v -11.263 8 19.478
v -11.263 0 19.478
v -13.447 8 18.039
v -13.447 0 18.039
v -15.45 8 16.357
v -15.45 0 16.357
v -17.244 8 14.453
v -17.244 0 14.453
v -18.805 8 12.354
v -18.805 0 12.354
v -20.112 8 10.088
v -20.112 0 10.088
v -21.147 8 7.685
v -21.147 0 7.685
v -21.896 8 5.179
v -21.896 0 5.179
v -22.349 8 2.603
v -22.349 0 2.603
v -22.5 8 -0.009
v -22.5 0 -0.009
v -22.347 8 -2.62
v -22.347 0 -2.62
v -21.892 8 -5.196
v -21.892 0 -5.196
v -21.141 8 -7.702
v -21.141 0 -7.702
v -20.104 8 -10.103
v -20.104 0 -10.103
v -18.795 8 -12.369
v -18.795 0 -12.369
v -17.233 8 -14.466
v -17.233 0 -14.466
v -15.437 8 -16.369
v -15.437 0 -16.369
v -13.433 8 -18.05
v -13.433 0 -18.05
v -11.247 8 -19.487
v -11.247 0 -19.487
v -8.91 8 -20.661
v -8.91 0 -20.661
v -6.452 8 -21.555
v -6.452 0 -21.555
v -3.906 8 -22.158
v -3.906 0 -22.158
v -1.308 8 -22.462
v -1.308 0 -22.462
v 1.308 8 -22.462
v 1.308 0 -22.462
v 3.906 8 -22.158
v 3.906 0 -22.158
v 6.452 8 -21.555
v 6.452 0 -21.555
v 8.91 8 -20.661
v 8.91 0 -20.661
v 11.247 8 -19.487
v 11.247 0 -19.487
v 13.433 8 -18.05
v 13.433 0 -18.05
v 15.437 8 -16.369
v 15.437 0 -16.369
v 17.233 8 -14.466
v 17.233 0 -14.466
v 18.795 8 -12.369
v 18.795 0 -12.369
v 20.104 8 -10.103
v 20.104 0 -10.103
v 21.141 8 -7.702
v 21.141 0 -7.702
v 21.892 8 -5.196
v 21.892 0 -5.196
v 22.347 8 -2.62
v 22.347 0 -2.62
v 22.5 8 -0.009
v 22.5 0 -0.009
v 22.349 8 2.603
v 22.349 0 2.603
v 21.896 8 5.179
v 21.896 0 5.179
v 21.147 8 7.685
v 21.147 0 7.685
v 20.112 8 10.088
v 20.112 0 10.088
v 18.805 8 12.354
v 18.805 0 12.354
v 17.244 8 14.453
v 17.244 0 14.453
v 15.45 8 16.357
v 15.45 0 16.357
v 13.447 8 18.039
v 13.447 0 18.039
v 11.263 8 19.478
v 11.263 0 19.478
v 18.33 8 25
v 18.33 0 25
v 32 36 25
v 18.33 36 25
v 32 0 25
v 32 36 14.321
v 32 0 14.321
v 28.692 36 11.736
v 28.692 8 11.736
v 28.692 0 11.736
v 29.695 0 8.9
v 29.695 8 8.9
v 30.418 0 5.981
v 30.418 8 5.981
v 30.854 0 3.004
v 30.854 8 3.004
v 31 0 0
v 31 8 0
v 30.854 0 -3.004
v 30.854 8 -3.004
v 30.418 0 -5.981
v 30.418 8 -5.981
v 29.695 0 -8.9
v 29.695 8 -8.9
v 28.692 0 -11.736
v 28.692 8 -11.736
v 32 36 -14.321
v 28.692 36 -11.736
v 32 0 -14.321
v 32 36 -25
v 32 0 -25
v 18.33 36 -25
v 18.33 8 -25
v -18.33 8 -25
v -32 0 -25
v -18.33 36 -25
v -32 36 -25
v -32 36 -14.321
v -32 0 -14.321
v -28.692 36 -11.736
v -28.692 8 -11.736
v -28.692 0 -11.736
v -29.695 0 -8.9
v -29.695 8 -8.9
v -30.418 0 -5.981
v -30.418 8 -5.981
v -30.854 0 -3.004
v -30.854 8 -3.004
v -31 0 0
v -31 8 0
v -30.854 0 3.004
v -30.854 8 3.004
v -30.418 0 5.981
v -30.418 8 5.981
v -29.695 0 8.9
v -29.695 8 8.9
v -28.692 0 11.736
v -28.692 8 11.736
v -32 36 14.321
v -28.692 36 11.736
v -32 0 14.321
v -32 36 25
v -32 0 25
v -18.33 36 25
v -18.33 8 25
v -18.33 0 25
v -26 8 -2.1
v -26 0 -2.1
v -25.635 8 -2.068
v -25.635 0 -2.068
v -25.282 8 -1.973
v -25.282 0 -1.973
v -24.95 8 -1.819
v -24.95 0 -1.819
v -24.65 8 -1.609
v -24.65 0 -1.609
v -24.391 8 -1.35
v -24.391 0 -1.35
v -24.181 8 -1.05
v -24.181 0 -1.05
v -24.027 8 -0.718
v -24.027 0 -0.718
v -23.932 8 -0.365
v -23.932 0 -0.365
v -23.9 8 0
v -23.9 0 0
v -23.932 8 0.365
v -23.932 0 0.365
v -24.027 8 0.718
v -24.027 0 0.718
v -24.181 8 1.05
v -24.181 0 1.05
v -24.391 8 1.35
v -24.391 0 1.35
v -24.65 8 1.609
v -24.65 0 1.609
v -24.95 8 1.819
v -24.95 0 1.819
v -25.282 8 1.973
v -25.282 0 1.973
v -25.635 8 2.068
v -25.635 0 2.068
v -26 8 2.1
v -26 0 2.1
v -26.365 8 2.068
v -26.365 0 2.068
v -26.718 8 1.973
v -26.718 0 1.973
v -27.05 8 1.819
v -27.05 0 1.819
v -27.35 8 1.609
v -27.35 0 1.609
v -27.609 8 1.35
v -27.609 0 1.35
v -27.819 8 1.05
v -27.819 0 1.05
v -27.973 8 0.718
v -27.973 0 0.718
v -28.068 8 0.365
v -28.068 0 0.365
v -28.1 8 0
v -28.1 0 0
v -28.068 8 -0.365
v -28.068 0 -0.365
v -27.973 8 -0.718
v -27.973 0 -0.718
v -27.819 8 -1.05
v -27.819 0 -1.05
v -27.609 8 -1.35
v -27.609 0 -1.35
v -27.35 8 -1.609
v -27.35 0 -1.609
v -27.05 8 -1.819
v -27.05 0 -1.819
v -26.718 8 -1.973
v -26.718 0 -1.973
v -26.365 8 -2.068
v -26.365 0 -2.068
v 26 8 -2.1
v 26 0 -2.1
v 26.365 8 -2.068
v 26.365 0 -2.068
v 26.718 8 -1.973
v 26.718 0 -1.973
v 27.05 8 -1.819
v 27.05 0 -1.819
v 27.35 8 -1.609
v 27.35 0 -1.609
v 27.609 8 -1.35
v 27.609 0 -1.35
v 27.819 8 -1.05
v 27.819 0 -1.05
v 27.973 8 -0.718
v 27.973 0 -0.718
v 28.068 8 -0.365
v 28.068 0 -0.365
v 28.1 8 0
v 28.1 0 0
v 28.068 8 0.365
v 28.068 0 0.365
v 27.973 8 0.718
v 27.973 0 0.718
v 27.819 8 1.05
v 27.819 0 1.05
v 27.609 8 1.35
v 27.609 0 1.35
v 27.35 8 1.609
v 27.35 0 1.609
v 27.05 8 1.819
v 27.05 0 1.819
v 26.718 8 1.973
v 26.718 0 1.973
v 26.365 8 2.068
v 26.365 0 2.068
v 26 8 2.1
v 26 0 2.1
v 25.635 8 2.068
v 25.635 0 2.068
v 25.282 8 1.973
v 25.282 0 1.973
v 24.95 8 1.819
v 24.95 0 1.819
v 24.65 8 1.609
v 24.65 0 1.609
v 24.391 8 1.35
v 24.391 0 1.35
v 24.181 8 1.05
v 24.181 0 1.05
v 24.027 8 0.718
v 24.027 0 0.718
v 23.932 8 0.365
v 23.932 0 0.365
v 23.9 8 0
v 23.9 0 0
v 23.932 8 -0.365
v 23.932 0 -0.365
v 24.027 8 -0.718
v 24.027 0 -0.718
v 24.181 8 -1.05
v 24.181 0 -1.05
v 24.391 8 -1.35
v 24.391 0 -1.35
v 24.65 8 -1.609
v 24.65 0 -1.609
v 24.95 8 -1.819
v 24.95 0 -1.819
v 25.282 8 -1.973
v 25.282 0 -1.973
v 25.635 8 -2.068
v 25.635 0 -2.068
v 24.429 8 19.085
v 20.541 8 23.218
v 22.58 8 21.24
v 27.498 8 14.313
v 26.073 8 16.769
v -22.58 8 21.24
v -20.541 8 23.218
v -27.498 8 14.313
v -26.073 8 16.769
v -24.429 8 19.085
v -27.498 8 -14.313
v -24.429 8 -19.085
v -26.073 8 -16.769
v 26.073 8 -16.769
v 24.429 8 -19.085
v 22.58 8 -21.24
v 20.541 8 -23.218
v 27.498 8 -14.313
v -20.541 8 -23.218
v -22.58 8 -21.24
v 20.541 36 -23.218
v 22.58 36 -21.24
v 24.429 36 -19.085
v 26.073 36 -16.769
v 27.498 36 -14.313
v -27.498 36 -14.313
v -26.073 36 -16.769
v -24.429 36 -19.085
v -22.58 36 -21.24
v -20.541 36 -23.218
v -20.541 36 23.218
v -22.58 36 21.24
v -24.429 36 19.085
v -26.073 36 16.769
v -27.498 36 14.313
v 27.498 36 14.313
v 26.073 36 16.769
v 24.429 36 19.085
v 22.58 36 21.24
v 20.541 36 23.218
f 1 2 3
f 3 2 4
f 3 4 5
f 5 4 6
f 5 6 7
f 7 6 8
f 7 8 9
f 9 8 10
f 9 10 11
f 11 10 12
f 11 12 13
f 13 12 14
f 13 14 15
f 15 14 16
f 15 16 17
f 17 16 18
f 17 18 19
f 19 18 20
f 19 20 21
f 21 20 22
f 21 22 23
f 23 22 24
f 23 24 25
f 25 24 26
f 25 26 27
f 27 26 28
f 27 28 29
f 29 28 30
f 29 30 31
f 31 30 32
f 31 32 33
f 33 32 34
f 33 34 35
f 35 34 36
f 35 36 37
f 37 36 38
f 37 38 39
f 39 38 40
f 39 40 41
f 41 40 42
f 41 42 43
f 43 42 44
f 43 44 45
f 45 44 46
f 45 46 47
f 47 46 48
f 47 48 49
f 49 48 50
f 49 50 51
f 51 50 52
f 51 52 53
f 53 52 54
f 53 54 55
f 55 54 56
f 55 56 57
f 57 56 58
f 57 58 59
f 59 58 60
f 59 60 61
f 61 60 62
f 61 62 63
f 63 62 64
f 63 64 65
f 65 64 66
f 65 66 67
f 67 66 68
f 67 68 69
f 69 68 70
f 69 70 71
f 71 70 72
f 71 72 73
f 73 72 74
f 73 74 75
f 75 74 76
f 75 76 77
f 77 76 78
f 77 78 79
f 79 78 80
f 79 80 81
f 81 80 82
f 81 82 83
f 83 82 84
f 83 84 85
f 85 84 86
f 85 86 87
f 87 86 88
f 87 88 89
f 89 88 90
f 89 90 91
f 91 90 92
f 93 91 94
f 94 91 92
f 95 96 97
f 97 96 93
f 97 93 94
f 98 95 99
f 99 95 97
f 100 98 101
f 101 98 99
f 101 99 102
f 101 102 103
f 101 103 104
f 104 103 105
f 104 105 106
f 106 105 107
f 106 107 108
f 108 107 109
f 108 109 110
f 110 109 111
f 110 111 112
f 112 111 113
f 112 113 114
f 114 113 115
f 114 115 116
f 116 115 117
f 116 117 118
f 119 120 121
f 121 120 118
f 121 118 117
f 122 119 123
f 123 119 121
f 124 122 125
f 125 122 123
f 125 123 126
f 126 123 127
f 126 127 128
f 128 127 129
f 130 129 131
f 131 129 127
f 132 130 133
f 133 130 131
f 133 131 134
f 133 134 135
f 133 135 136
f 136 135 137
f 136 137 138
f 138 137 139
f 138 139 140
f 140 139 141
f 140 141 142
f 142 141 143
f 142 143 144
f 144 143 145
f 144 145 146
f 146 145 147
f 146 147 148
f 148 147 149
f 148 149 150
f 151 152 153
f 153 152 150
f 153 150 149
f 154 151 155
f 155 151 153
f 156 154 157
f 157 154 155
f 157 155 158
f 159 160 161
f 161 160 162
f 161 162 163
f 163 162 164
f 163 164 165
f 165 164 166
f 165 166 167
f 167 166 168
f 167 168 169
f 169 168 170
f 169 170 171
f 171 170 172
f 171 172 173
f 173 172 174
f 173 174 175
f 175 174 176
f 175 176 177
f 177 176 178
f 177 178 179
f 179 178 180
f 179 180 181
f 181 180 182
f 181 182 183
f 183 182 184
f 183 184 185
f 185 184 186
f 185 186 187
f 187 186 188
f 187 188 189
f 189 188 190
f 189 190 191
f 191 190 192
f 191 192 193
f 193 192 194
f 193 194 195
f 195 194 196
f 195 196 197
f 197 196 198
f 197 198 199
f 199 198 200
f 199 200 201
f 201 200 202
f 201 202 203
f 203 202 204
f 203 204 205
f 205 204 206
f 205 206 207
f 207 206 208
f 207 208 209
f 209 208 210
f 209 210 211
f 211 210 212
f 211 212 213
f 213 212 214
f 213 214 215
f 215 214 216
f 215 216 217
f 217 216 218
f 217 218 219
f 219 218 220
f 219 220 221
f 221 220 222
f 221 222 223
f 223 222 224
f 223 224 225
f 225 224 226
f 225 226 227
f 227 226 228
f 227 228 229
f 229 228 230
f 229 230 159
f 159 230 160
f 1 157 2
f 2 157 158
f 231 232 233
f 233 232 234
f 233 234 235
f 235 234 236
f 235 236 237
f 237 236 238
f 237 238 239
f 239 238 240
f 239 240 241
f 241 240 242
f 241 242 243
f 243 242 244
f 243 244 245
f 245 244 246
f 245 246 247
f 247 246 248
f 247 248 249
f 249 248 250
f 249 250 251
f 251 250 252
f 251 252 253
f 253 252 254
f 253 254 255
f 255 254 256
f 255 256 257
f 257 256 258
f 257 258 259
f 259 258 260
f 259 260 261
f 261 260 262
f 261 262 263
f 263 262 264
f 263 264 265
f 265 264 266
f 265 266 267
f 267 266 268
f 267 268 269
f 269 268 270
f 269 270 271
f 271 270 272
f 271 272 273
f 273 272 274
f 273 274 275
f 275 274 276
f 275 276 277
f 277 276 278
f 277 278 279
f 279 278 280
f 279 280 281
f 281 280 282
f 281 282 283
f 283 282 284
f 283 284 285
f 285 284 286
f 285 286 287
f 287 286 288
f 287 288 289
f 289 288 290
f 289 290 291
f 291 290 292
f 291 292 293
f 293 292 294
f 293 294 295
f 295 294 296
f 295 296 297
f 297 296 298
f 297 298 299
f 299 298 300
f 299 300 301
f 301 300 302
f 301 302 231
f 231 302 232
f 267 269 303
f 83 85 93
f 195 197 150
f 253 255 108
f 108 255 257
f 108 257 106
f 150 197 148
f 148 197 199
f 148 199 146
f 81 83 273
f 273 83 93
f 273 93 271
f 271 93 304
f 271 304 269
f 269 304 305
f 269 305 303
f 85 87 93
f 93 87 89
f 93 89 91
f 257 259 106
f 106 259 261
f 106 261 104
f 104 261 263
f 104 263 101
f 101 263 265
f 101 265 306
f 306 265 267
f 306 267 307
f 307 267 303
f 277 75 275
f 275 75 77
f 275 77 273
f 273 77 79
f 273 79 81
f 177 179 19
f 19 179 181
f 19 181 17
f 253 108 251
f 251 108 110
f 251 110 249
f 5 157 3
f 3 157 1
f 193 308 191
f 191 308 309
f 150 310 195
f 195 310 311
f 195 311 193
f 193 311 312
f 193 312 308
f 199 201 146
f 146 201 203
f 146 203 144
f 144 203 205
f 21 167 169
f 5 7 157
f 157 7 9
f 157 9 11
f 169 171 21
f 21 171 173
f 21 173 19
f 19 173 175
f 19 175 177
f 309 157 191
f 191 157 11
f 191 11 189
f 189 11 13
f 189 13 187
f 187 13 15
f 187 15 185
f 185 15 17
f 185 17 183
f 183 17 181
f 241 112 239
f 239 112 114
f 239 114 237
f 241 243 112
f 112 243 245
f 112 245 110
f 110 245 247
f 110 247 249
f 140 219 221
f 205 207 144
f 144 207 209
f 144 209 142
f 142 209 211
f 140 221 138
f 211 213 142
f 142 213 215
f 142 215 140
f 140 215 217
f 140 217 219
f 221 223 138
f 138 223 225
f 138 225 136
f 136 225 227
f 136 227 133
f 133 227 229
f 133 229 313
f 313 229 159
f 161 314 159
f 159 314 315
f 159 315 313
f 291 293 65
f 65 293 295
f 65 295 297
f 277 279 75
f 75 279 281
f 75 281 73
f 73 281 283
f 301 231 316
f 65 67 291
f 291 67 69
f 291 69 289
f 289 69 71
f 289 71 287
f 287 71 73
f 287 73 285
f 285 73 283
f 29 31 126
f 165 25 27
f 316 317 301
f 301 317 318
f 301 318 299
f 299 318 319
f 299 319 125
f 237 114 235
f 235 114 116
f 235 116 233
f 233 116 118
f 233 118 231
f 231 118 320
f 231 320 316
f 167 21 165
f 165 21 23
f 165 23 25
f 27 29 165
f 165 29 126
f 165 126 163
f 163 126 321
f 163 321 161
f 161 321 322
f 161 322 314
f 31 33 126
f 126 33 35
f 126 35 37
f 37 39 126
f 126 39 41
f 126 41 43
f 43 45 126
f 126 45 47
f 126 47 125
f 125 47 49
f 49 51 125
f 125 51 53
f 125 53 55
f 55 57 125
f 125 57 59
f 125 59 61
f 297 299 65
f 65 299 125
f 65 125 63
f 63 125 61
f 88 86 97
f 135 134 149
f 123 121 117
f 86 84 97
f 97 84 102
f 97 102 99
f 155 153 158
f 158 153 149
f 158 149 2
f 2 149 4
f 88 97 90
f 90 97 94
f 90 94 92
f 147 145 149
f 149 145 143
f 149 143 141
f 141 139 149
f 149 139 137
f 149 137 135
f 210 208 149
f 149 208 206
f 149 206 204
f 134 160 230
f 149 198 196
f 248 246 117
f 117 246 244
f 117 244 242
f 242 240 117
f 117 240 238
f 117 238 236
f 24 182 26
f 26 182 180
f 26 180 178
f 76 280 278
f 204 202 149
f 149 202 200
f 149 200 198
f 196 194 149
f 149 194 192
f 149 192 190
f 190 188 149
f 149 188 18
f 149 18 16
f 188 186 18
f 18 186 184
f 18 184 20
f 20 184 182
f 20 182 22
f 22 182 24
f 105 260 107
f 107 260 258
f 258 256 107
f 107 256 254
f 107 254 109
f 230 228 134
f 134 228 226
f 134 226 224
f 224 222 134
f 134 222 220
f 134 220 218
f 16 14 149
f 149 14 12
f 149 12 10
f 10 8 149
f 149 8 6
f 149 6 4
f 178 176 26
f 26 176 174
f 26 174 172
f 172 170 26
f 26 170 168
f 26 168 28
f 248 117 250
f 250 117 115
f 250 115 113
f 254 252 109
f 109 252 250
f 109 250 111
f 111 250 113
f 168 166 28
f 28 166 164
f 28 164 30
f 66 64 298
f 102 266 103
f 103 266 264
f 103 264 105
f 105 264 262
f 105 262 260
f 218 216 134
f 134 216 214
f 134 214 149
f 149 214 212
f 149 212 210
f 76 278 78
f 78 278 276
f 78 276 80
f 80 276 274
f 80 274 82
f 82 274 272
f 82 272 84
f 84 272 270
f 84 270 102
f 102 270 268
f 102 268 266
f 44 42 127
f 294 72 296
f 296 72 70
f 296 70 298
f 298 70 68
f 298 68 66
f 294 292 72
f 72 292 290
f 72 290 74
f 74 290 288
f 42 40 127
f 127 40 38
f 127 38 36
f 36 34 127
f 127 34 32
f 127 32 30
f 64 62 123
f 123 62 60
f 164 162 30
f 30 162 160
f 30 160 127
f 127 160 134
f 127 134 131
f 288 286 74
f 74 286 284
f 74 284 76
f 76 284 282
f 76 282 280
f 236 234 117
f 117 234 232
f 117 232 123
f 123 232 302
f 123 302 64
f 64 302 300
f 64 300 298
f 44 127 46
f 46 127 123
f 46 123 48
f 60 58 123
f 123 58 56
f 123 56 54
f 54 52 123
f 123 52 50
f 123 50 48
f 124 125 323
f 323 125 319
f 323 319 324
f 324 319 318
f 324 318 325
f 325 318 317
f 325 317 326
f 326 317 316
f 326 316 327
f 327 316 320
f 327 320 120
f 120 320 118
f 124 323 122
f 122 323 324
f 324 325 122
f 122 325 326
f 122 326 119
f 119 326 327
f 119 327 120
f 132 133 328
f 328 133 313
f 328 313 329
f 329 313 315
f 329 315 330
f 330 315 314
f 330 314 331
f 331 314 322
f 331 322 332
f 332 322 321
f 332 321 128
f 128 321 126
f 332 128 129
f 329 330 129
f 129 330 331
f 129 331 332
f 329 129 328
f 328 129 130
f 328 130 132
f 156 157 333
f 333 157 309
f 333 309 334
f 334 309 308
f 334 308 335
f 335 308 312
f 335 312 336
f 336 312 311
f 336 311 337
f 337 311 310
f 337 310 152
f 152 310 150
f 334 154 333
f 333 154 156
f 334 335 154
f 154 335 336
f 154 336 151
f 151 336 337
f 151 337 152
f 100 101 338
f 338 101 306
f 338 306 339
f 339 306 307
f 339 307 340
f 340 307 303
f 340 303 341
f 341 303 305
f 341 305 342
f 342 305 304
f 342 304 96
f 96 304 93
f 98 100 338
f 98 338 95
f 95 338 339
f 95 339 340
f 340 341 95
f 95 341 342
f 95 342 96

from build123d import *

# Parameters (mm, degrees)
SKETCH1_R           = 2.1
BOSS_EXTRUDE1_DEPTH = 8
BOSS_EXTRUDE2_DEPTH = 36


with BuildPart() as part:
    # Sketch1 → Boss-Extrude1 (new body)
    with BuildSketch(Plane(origin=(0, 0, 0), x_dir=(1, 0, 0), z_dir=(0, 1, 0))):
        with BuildLine():
            Line((18.33030278, -25), (32, -25))
            Line((32, -25), (32, -14.320549047))
            Line((32, -14.320549047), (28.692414075, -11.736497543))
            ThreePointArc((28.692414075, -11.736497543), (31, 0), (28.692414075, 11.736497543))
            Line((28.692414075, 11.736497543), (32, 14.320549047))
            Line((32, 14.320549047), (32, 25))
            Line((32, 25), (-32, 25))
            Line((-32, 25), (-32, 14.320549047))
            Line((-32, 14.320549047), (-28.692414075, 11.736497543))
            ThreePointArc((-28.692414075, 11.736497543), (-31, 0), (-28.692414075, -11.736497543))
            Line((-28.692414075, -11.736497543), (-32, -14.320549047))
            Line((-32, -14.320549047), (-32, -25))
            Line((-32, -25), (-18.33030278, -25))
            Line((-18.33030278, -25), (-11.262551698, -19.478319467))
            ThreePointArc((-11.262551698, -19.478319467), (0, 22.5), (11.262551698, -19.478319467))
            Line((11.262551698, -19.478319467), (18.33030278, -25))
        make_face()
        with Locations(Location((26, 0, 0), (0, 0, 270))):
            Circle(SKETCH1_R, mode=Mode.SUBTRACT)
        with Locations(Location((-26, 0, 0), (0, 0, 270))):
            Circle(SKETCH1_R, mode=Mode.SUBTRACT)
    extrude(amount=BOSS_EXTRUDE1_DEPTH)

    # Sketch1<4> → Boss-Extrude2 (add)
    with BuildSketch(Plane(origin=(0, 0, 0), x_dir=(1, 0, 0), z_dir=(0, 1, 0))):
        with BuildLine():
            Line((28.692414075, 11.736497543), (32, 14.320549047))
            Line((32, 14.320549047), (32, 25))
            Line((32, 25), (18.33030278, 25))
            ThreePointArc((18.33030278, 25), (24.428755585, 19.084965301), (28.692414075, 11.736497543))
        make_face()
        with BuildLine():
            Line((-32, 25), (-32, 14.320549047))
            Line((-32, 14.320549047), (-28.692414075, 11.736497543))
            ThreePointArc((-28.692414075, 11.736497543), (-24.428755585, 19.084965301), (-18.33030278, 25))
            Line((-18.33030278, 25), (-32, 25))
        make_face()
        with BuildLine():
            Line((-32, -14.320549047), (-32, -25))
            Line((-32, -25), (-24.428755585, -19.084965301))
            ThreePointArc((-24.428755585, -19.084965301), (-26.813516388, -15.557484979), (-28.692414075, -11.736497543))
            Line((-28.692414075, -11.736497543), (-32, -14.320549047))
        make_face()
        with BuildLine():
            Line((-32, -25), (-18.33030278, -25))
            ThreePointArc((-18.33030278, -25), (-21.583122502, -22.252389154), (-24.428755585, -19.084965301))
            Line((-24.428755585, -19.084965301), (-32, -25))
        make_face()
        with BuildLine():
            Line((18.33030278, -25), (32, -25))
            Line((32, -25), (32, -14.320549047))
            Line((32, -14.320549047), (28.692414075, -11.736497543))
            ThreePointArc((28.692414075, -11.736497543), (24.428755585, -19.084965301), (18.33030278, -25))
        make_face()
    extrude(amount=BOSS_EXTRUDE2_DEPTH)


solid = part.part
